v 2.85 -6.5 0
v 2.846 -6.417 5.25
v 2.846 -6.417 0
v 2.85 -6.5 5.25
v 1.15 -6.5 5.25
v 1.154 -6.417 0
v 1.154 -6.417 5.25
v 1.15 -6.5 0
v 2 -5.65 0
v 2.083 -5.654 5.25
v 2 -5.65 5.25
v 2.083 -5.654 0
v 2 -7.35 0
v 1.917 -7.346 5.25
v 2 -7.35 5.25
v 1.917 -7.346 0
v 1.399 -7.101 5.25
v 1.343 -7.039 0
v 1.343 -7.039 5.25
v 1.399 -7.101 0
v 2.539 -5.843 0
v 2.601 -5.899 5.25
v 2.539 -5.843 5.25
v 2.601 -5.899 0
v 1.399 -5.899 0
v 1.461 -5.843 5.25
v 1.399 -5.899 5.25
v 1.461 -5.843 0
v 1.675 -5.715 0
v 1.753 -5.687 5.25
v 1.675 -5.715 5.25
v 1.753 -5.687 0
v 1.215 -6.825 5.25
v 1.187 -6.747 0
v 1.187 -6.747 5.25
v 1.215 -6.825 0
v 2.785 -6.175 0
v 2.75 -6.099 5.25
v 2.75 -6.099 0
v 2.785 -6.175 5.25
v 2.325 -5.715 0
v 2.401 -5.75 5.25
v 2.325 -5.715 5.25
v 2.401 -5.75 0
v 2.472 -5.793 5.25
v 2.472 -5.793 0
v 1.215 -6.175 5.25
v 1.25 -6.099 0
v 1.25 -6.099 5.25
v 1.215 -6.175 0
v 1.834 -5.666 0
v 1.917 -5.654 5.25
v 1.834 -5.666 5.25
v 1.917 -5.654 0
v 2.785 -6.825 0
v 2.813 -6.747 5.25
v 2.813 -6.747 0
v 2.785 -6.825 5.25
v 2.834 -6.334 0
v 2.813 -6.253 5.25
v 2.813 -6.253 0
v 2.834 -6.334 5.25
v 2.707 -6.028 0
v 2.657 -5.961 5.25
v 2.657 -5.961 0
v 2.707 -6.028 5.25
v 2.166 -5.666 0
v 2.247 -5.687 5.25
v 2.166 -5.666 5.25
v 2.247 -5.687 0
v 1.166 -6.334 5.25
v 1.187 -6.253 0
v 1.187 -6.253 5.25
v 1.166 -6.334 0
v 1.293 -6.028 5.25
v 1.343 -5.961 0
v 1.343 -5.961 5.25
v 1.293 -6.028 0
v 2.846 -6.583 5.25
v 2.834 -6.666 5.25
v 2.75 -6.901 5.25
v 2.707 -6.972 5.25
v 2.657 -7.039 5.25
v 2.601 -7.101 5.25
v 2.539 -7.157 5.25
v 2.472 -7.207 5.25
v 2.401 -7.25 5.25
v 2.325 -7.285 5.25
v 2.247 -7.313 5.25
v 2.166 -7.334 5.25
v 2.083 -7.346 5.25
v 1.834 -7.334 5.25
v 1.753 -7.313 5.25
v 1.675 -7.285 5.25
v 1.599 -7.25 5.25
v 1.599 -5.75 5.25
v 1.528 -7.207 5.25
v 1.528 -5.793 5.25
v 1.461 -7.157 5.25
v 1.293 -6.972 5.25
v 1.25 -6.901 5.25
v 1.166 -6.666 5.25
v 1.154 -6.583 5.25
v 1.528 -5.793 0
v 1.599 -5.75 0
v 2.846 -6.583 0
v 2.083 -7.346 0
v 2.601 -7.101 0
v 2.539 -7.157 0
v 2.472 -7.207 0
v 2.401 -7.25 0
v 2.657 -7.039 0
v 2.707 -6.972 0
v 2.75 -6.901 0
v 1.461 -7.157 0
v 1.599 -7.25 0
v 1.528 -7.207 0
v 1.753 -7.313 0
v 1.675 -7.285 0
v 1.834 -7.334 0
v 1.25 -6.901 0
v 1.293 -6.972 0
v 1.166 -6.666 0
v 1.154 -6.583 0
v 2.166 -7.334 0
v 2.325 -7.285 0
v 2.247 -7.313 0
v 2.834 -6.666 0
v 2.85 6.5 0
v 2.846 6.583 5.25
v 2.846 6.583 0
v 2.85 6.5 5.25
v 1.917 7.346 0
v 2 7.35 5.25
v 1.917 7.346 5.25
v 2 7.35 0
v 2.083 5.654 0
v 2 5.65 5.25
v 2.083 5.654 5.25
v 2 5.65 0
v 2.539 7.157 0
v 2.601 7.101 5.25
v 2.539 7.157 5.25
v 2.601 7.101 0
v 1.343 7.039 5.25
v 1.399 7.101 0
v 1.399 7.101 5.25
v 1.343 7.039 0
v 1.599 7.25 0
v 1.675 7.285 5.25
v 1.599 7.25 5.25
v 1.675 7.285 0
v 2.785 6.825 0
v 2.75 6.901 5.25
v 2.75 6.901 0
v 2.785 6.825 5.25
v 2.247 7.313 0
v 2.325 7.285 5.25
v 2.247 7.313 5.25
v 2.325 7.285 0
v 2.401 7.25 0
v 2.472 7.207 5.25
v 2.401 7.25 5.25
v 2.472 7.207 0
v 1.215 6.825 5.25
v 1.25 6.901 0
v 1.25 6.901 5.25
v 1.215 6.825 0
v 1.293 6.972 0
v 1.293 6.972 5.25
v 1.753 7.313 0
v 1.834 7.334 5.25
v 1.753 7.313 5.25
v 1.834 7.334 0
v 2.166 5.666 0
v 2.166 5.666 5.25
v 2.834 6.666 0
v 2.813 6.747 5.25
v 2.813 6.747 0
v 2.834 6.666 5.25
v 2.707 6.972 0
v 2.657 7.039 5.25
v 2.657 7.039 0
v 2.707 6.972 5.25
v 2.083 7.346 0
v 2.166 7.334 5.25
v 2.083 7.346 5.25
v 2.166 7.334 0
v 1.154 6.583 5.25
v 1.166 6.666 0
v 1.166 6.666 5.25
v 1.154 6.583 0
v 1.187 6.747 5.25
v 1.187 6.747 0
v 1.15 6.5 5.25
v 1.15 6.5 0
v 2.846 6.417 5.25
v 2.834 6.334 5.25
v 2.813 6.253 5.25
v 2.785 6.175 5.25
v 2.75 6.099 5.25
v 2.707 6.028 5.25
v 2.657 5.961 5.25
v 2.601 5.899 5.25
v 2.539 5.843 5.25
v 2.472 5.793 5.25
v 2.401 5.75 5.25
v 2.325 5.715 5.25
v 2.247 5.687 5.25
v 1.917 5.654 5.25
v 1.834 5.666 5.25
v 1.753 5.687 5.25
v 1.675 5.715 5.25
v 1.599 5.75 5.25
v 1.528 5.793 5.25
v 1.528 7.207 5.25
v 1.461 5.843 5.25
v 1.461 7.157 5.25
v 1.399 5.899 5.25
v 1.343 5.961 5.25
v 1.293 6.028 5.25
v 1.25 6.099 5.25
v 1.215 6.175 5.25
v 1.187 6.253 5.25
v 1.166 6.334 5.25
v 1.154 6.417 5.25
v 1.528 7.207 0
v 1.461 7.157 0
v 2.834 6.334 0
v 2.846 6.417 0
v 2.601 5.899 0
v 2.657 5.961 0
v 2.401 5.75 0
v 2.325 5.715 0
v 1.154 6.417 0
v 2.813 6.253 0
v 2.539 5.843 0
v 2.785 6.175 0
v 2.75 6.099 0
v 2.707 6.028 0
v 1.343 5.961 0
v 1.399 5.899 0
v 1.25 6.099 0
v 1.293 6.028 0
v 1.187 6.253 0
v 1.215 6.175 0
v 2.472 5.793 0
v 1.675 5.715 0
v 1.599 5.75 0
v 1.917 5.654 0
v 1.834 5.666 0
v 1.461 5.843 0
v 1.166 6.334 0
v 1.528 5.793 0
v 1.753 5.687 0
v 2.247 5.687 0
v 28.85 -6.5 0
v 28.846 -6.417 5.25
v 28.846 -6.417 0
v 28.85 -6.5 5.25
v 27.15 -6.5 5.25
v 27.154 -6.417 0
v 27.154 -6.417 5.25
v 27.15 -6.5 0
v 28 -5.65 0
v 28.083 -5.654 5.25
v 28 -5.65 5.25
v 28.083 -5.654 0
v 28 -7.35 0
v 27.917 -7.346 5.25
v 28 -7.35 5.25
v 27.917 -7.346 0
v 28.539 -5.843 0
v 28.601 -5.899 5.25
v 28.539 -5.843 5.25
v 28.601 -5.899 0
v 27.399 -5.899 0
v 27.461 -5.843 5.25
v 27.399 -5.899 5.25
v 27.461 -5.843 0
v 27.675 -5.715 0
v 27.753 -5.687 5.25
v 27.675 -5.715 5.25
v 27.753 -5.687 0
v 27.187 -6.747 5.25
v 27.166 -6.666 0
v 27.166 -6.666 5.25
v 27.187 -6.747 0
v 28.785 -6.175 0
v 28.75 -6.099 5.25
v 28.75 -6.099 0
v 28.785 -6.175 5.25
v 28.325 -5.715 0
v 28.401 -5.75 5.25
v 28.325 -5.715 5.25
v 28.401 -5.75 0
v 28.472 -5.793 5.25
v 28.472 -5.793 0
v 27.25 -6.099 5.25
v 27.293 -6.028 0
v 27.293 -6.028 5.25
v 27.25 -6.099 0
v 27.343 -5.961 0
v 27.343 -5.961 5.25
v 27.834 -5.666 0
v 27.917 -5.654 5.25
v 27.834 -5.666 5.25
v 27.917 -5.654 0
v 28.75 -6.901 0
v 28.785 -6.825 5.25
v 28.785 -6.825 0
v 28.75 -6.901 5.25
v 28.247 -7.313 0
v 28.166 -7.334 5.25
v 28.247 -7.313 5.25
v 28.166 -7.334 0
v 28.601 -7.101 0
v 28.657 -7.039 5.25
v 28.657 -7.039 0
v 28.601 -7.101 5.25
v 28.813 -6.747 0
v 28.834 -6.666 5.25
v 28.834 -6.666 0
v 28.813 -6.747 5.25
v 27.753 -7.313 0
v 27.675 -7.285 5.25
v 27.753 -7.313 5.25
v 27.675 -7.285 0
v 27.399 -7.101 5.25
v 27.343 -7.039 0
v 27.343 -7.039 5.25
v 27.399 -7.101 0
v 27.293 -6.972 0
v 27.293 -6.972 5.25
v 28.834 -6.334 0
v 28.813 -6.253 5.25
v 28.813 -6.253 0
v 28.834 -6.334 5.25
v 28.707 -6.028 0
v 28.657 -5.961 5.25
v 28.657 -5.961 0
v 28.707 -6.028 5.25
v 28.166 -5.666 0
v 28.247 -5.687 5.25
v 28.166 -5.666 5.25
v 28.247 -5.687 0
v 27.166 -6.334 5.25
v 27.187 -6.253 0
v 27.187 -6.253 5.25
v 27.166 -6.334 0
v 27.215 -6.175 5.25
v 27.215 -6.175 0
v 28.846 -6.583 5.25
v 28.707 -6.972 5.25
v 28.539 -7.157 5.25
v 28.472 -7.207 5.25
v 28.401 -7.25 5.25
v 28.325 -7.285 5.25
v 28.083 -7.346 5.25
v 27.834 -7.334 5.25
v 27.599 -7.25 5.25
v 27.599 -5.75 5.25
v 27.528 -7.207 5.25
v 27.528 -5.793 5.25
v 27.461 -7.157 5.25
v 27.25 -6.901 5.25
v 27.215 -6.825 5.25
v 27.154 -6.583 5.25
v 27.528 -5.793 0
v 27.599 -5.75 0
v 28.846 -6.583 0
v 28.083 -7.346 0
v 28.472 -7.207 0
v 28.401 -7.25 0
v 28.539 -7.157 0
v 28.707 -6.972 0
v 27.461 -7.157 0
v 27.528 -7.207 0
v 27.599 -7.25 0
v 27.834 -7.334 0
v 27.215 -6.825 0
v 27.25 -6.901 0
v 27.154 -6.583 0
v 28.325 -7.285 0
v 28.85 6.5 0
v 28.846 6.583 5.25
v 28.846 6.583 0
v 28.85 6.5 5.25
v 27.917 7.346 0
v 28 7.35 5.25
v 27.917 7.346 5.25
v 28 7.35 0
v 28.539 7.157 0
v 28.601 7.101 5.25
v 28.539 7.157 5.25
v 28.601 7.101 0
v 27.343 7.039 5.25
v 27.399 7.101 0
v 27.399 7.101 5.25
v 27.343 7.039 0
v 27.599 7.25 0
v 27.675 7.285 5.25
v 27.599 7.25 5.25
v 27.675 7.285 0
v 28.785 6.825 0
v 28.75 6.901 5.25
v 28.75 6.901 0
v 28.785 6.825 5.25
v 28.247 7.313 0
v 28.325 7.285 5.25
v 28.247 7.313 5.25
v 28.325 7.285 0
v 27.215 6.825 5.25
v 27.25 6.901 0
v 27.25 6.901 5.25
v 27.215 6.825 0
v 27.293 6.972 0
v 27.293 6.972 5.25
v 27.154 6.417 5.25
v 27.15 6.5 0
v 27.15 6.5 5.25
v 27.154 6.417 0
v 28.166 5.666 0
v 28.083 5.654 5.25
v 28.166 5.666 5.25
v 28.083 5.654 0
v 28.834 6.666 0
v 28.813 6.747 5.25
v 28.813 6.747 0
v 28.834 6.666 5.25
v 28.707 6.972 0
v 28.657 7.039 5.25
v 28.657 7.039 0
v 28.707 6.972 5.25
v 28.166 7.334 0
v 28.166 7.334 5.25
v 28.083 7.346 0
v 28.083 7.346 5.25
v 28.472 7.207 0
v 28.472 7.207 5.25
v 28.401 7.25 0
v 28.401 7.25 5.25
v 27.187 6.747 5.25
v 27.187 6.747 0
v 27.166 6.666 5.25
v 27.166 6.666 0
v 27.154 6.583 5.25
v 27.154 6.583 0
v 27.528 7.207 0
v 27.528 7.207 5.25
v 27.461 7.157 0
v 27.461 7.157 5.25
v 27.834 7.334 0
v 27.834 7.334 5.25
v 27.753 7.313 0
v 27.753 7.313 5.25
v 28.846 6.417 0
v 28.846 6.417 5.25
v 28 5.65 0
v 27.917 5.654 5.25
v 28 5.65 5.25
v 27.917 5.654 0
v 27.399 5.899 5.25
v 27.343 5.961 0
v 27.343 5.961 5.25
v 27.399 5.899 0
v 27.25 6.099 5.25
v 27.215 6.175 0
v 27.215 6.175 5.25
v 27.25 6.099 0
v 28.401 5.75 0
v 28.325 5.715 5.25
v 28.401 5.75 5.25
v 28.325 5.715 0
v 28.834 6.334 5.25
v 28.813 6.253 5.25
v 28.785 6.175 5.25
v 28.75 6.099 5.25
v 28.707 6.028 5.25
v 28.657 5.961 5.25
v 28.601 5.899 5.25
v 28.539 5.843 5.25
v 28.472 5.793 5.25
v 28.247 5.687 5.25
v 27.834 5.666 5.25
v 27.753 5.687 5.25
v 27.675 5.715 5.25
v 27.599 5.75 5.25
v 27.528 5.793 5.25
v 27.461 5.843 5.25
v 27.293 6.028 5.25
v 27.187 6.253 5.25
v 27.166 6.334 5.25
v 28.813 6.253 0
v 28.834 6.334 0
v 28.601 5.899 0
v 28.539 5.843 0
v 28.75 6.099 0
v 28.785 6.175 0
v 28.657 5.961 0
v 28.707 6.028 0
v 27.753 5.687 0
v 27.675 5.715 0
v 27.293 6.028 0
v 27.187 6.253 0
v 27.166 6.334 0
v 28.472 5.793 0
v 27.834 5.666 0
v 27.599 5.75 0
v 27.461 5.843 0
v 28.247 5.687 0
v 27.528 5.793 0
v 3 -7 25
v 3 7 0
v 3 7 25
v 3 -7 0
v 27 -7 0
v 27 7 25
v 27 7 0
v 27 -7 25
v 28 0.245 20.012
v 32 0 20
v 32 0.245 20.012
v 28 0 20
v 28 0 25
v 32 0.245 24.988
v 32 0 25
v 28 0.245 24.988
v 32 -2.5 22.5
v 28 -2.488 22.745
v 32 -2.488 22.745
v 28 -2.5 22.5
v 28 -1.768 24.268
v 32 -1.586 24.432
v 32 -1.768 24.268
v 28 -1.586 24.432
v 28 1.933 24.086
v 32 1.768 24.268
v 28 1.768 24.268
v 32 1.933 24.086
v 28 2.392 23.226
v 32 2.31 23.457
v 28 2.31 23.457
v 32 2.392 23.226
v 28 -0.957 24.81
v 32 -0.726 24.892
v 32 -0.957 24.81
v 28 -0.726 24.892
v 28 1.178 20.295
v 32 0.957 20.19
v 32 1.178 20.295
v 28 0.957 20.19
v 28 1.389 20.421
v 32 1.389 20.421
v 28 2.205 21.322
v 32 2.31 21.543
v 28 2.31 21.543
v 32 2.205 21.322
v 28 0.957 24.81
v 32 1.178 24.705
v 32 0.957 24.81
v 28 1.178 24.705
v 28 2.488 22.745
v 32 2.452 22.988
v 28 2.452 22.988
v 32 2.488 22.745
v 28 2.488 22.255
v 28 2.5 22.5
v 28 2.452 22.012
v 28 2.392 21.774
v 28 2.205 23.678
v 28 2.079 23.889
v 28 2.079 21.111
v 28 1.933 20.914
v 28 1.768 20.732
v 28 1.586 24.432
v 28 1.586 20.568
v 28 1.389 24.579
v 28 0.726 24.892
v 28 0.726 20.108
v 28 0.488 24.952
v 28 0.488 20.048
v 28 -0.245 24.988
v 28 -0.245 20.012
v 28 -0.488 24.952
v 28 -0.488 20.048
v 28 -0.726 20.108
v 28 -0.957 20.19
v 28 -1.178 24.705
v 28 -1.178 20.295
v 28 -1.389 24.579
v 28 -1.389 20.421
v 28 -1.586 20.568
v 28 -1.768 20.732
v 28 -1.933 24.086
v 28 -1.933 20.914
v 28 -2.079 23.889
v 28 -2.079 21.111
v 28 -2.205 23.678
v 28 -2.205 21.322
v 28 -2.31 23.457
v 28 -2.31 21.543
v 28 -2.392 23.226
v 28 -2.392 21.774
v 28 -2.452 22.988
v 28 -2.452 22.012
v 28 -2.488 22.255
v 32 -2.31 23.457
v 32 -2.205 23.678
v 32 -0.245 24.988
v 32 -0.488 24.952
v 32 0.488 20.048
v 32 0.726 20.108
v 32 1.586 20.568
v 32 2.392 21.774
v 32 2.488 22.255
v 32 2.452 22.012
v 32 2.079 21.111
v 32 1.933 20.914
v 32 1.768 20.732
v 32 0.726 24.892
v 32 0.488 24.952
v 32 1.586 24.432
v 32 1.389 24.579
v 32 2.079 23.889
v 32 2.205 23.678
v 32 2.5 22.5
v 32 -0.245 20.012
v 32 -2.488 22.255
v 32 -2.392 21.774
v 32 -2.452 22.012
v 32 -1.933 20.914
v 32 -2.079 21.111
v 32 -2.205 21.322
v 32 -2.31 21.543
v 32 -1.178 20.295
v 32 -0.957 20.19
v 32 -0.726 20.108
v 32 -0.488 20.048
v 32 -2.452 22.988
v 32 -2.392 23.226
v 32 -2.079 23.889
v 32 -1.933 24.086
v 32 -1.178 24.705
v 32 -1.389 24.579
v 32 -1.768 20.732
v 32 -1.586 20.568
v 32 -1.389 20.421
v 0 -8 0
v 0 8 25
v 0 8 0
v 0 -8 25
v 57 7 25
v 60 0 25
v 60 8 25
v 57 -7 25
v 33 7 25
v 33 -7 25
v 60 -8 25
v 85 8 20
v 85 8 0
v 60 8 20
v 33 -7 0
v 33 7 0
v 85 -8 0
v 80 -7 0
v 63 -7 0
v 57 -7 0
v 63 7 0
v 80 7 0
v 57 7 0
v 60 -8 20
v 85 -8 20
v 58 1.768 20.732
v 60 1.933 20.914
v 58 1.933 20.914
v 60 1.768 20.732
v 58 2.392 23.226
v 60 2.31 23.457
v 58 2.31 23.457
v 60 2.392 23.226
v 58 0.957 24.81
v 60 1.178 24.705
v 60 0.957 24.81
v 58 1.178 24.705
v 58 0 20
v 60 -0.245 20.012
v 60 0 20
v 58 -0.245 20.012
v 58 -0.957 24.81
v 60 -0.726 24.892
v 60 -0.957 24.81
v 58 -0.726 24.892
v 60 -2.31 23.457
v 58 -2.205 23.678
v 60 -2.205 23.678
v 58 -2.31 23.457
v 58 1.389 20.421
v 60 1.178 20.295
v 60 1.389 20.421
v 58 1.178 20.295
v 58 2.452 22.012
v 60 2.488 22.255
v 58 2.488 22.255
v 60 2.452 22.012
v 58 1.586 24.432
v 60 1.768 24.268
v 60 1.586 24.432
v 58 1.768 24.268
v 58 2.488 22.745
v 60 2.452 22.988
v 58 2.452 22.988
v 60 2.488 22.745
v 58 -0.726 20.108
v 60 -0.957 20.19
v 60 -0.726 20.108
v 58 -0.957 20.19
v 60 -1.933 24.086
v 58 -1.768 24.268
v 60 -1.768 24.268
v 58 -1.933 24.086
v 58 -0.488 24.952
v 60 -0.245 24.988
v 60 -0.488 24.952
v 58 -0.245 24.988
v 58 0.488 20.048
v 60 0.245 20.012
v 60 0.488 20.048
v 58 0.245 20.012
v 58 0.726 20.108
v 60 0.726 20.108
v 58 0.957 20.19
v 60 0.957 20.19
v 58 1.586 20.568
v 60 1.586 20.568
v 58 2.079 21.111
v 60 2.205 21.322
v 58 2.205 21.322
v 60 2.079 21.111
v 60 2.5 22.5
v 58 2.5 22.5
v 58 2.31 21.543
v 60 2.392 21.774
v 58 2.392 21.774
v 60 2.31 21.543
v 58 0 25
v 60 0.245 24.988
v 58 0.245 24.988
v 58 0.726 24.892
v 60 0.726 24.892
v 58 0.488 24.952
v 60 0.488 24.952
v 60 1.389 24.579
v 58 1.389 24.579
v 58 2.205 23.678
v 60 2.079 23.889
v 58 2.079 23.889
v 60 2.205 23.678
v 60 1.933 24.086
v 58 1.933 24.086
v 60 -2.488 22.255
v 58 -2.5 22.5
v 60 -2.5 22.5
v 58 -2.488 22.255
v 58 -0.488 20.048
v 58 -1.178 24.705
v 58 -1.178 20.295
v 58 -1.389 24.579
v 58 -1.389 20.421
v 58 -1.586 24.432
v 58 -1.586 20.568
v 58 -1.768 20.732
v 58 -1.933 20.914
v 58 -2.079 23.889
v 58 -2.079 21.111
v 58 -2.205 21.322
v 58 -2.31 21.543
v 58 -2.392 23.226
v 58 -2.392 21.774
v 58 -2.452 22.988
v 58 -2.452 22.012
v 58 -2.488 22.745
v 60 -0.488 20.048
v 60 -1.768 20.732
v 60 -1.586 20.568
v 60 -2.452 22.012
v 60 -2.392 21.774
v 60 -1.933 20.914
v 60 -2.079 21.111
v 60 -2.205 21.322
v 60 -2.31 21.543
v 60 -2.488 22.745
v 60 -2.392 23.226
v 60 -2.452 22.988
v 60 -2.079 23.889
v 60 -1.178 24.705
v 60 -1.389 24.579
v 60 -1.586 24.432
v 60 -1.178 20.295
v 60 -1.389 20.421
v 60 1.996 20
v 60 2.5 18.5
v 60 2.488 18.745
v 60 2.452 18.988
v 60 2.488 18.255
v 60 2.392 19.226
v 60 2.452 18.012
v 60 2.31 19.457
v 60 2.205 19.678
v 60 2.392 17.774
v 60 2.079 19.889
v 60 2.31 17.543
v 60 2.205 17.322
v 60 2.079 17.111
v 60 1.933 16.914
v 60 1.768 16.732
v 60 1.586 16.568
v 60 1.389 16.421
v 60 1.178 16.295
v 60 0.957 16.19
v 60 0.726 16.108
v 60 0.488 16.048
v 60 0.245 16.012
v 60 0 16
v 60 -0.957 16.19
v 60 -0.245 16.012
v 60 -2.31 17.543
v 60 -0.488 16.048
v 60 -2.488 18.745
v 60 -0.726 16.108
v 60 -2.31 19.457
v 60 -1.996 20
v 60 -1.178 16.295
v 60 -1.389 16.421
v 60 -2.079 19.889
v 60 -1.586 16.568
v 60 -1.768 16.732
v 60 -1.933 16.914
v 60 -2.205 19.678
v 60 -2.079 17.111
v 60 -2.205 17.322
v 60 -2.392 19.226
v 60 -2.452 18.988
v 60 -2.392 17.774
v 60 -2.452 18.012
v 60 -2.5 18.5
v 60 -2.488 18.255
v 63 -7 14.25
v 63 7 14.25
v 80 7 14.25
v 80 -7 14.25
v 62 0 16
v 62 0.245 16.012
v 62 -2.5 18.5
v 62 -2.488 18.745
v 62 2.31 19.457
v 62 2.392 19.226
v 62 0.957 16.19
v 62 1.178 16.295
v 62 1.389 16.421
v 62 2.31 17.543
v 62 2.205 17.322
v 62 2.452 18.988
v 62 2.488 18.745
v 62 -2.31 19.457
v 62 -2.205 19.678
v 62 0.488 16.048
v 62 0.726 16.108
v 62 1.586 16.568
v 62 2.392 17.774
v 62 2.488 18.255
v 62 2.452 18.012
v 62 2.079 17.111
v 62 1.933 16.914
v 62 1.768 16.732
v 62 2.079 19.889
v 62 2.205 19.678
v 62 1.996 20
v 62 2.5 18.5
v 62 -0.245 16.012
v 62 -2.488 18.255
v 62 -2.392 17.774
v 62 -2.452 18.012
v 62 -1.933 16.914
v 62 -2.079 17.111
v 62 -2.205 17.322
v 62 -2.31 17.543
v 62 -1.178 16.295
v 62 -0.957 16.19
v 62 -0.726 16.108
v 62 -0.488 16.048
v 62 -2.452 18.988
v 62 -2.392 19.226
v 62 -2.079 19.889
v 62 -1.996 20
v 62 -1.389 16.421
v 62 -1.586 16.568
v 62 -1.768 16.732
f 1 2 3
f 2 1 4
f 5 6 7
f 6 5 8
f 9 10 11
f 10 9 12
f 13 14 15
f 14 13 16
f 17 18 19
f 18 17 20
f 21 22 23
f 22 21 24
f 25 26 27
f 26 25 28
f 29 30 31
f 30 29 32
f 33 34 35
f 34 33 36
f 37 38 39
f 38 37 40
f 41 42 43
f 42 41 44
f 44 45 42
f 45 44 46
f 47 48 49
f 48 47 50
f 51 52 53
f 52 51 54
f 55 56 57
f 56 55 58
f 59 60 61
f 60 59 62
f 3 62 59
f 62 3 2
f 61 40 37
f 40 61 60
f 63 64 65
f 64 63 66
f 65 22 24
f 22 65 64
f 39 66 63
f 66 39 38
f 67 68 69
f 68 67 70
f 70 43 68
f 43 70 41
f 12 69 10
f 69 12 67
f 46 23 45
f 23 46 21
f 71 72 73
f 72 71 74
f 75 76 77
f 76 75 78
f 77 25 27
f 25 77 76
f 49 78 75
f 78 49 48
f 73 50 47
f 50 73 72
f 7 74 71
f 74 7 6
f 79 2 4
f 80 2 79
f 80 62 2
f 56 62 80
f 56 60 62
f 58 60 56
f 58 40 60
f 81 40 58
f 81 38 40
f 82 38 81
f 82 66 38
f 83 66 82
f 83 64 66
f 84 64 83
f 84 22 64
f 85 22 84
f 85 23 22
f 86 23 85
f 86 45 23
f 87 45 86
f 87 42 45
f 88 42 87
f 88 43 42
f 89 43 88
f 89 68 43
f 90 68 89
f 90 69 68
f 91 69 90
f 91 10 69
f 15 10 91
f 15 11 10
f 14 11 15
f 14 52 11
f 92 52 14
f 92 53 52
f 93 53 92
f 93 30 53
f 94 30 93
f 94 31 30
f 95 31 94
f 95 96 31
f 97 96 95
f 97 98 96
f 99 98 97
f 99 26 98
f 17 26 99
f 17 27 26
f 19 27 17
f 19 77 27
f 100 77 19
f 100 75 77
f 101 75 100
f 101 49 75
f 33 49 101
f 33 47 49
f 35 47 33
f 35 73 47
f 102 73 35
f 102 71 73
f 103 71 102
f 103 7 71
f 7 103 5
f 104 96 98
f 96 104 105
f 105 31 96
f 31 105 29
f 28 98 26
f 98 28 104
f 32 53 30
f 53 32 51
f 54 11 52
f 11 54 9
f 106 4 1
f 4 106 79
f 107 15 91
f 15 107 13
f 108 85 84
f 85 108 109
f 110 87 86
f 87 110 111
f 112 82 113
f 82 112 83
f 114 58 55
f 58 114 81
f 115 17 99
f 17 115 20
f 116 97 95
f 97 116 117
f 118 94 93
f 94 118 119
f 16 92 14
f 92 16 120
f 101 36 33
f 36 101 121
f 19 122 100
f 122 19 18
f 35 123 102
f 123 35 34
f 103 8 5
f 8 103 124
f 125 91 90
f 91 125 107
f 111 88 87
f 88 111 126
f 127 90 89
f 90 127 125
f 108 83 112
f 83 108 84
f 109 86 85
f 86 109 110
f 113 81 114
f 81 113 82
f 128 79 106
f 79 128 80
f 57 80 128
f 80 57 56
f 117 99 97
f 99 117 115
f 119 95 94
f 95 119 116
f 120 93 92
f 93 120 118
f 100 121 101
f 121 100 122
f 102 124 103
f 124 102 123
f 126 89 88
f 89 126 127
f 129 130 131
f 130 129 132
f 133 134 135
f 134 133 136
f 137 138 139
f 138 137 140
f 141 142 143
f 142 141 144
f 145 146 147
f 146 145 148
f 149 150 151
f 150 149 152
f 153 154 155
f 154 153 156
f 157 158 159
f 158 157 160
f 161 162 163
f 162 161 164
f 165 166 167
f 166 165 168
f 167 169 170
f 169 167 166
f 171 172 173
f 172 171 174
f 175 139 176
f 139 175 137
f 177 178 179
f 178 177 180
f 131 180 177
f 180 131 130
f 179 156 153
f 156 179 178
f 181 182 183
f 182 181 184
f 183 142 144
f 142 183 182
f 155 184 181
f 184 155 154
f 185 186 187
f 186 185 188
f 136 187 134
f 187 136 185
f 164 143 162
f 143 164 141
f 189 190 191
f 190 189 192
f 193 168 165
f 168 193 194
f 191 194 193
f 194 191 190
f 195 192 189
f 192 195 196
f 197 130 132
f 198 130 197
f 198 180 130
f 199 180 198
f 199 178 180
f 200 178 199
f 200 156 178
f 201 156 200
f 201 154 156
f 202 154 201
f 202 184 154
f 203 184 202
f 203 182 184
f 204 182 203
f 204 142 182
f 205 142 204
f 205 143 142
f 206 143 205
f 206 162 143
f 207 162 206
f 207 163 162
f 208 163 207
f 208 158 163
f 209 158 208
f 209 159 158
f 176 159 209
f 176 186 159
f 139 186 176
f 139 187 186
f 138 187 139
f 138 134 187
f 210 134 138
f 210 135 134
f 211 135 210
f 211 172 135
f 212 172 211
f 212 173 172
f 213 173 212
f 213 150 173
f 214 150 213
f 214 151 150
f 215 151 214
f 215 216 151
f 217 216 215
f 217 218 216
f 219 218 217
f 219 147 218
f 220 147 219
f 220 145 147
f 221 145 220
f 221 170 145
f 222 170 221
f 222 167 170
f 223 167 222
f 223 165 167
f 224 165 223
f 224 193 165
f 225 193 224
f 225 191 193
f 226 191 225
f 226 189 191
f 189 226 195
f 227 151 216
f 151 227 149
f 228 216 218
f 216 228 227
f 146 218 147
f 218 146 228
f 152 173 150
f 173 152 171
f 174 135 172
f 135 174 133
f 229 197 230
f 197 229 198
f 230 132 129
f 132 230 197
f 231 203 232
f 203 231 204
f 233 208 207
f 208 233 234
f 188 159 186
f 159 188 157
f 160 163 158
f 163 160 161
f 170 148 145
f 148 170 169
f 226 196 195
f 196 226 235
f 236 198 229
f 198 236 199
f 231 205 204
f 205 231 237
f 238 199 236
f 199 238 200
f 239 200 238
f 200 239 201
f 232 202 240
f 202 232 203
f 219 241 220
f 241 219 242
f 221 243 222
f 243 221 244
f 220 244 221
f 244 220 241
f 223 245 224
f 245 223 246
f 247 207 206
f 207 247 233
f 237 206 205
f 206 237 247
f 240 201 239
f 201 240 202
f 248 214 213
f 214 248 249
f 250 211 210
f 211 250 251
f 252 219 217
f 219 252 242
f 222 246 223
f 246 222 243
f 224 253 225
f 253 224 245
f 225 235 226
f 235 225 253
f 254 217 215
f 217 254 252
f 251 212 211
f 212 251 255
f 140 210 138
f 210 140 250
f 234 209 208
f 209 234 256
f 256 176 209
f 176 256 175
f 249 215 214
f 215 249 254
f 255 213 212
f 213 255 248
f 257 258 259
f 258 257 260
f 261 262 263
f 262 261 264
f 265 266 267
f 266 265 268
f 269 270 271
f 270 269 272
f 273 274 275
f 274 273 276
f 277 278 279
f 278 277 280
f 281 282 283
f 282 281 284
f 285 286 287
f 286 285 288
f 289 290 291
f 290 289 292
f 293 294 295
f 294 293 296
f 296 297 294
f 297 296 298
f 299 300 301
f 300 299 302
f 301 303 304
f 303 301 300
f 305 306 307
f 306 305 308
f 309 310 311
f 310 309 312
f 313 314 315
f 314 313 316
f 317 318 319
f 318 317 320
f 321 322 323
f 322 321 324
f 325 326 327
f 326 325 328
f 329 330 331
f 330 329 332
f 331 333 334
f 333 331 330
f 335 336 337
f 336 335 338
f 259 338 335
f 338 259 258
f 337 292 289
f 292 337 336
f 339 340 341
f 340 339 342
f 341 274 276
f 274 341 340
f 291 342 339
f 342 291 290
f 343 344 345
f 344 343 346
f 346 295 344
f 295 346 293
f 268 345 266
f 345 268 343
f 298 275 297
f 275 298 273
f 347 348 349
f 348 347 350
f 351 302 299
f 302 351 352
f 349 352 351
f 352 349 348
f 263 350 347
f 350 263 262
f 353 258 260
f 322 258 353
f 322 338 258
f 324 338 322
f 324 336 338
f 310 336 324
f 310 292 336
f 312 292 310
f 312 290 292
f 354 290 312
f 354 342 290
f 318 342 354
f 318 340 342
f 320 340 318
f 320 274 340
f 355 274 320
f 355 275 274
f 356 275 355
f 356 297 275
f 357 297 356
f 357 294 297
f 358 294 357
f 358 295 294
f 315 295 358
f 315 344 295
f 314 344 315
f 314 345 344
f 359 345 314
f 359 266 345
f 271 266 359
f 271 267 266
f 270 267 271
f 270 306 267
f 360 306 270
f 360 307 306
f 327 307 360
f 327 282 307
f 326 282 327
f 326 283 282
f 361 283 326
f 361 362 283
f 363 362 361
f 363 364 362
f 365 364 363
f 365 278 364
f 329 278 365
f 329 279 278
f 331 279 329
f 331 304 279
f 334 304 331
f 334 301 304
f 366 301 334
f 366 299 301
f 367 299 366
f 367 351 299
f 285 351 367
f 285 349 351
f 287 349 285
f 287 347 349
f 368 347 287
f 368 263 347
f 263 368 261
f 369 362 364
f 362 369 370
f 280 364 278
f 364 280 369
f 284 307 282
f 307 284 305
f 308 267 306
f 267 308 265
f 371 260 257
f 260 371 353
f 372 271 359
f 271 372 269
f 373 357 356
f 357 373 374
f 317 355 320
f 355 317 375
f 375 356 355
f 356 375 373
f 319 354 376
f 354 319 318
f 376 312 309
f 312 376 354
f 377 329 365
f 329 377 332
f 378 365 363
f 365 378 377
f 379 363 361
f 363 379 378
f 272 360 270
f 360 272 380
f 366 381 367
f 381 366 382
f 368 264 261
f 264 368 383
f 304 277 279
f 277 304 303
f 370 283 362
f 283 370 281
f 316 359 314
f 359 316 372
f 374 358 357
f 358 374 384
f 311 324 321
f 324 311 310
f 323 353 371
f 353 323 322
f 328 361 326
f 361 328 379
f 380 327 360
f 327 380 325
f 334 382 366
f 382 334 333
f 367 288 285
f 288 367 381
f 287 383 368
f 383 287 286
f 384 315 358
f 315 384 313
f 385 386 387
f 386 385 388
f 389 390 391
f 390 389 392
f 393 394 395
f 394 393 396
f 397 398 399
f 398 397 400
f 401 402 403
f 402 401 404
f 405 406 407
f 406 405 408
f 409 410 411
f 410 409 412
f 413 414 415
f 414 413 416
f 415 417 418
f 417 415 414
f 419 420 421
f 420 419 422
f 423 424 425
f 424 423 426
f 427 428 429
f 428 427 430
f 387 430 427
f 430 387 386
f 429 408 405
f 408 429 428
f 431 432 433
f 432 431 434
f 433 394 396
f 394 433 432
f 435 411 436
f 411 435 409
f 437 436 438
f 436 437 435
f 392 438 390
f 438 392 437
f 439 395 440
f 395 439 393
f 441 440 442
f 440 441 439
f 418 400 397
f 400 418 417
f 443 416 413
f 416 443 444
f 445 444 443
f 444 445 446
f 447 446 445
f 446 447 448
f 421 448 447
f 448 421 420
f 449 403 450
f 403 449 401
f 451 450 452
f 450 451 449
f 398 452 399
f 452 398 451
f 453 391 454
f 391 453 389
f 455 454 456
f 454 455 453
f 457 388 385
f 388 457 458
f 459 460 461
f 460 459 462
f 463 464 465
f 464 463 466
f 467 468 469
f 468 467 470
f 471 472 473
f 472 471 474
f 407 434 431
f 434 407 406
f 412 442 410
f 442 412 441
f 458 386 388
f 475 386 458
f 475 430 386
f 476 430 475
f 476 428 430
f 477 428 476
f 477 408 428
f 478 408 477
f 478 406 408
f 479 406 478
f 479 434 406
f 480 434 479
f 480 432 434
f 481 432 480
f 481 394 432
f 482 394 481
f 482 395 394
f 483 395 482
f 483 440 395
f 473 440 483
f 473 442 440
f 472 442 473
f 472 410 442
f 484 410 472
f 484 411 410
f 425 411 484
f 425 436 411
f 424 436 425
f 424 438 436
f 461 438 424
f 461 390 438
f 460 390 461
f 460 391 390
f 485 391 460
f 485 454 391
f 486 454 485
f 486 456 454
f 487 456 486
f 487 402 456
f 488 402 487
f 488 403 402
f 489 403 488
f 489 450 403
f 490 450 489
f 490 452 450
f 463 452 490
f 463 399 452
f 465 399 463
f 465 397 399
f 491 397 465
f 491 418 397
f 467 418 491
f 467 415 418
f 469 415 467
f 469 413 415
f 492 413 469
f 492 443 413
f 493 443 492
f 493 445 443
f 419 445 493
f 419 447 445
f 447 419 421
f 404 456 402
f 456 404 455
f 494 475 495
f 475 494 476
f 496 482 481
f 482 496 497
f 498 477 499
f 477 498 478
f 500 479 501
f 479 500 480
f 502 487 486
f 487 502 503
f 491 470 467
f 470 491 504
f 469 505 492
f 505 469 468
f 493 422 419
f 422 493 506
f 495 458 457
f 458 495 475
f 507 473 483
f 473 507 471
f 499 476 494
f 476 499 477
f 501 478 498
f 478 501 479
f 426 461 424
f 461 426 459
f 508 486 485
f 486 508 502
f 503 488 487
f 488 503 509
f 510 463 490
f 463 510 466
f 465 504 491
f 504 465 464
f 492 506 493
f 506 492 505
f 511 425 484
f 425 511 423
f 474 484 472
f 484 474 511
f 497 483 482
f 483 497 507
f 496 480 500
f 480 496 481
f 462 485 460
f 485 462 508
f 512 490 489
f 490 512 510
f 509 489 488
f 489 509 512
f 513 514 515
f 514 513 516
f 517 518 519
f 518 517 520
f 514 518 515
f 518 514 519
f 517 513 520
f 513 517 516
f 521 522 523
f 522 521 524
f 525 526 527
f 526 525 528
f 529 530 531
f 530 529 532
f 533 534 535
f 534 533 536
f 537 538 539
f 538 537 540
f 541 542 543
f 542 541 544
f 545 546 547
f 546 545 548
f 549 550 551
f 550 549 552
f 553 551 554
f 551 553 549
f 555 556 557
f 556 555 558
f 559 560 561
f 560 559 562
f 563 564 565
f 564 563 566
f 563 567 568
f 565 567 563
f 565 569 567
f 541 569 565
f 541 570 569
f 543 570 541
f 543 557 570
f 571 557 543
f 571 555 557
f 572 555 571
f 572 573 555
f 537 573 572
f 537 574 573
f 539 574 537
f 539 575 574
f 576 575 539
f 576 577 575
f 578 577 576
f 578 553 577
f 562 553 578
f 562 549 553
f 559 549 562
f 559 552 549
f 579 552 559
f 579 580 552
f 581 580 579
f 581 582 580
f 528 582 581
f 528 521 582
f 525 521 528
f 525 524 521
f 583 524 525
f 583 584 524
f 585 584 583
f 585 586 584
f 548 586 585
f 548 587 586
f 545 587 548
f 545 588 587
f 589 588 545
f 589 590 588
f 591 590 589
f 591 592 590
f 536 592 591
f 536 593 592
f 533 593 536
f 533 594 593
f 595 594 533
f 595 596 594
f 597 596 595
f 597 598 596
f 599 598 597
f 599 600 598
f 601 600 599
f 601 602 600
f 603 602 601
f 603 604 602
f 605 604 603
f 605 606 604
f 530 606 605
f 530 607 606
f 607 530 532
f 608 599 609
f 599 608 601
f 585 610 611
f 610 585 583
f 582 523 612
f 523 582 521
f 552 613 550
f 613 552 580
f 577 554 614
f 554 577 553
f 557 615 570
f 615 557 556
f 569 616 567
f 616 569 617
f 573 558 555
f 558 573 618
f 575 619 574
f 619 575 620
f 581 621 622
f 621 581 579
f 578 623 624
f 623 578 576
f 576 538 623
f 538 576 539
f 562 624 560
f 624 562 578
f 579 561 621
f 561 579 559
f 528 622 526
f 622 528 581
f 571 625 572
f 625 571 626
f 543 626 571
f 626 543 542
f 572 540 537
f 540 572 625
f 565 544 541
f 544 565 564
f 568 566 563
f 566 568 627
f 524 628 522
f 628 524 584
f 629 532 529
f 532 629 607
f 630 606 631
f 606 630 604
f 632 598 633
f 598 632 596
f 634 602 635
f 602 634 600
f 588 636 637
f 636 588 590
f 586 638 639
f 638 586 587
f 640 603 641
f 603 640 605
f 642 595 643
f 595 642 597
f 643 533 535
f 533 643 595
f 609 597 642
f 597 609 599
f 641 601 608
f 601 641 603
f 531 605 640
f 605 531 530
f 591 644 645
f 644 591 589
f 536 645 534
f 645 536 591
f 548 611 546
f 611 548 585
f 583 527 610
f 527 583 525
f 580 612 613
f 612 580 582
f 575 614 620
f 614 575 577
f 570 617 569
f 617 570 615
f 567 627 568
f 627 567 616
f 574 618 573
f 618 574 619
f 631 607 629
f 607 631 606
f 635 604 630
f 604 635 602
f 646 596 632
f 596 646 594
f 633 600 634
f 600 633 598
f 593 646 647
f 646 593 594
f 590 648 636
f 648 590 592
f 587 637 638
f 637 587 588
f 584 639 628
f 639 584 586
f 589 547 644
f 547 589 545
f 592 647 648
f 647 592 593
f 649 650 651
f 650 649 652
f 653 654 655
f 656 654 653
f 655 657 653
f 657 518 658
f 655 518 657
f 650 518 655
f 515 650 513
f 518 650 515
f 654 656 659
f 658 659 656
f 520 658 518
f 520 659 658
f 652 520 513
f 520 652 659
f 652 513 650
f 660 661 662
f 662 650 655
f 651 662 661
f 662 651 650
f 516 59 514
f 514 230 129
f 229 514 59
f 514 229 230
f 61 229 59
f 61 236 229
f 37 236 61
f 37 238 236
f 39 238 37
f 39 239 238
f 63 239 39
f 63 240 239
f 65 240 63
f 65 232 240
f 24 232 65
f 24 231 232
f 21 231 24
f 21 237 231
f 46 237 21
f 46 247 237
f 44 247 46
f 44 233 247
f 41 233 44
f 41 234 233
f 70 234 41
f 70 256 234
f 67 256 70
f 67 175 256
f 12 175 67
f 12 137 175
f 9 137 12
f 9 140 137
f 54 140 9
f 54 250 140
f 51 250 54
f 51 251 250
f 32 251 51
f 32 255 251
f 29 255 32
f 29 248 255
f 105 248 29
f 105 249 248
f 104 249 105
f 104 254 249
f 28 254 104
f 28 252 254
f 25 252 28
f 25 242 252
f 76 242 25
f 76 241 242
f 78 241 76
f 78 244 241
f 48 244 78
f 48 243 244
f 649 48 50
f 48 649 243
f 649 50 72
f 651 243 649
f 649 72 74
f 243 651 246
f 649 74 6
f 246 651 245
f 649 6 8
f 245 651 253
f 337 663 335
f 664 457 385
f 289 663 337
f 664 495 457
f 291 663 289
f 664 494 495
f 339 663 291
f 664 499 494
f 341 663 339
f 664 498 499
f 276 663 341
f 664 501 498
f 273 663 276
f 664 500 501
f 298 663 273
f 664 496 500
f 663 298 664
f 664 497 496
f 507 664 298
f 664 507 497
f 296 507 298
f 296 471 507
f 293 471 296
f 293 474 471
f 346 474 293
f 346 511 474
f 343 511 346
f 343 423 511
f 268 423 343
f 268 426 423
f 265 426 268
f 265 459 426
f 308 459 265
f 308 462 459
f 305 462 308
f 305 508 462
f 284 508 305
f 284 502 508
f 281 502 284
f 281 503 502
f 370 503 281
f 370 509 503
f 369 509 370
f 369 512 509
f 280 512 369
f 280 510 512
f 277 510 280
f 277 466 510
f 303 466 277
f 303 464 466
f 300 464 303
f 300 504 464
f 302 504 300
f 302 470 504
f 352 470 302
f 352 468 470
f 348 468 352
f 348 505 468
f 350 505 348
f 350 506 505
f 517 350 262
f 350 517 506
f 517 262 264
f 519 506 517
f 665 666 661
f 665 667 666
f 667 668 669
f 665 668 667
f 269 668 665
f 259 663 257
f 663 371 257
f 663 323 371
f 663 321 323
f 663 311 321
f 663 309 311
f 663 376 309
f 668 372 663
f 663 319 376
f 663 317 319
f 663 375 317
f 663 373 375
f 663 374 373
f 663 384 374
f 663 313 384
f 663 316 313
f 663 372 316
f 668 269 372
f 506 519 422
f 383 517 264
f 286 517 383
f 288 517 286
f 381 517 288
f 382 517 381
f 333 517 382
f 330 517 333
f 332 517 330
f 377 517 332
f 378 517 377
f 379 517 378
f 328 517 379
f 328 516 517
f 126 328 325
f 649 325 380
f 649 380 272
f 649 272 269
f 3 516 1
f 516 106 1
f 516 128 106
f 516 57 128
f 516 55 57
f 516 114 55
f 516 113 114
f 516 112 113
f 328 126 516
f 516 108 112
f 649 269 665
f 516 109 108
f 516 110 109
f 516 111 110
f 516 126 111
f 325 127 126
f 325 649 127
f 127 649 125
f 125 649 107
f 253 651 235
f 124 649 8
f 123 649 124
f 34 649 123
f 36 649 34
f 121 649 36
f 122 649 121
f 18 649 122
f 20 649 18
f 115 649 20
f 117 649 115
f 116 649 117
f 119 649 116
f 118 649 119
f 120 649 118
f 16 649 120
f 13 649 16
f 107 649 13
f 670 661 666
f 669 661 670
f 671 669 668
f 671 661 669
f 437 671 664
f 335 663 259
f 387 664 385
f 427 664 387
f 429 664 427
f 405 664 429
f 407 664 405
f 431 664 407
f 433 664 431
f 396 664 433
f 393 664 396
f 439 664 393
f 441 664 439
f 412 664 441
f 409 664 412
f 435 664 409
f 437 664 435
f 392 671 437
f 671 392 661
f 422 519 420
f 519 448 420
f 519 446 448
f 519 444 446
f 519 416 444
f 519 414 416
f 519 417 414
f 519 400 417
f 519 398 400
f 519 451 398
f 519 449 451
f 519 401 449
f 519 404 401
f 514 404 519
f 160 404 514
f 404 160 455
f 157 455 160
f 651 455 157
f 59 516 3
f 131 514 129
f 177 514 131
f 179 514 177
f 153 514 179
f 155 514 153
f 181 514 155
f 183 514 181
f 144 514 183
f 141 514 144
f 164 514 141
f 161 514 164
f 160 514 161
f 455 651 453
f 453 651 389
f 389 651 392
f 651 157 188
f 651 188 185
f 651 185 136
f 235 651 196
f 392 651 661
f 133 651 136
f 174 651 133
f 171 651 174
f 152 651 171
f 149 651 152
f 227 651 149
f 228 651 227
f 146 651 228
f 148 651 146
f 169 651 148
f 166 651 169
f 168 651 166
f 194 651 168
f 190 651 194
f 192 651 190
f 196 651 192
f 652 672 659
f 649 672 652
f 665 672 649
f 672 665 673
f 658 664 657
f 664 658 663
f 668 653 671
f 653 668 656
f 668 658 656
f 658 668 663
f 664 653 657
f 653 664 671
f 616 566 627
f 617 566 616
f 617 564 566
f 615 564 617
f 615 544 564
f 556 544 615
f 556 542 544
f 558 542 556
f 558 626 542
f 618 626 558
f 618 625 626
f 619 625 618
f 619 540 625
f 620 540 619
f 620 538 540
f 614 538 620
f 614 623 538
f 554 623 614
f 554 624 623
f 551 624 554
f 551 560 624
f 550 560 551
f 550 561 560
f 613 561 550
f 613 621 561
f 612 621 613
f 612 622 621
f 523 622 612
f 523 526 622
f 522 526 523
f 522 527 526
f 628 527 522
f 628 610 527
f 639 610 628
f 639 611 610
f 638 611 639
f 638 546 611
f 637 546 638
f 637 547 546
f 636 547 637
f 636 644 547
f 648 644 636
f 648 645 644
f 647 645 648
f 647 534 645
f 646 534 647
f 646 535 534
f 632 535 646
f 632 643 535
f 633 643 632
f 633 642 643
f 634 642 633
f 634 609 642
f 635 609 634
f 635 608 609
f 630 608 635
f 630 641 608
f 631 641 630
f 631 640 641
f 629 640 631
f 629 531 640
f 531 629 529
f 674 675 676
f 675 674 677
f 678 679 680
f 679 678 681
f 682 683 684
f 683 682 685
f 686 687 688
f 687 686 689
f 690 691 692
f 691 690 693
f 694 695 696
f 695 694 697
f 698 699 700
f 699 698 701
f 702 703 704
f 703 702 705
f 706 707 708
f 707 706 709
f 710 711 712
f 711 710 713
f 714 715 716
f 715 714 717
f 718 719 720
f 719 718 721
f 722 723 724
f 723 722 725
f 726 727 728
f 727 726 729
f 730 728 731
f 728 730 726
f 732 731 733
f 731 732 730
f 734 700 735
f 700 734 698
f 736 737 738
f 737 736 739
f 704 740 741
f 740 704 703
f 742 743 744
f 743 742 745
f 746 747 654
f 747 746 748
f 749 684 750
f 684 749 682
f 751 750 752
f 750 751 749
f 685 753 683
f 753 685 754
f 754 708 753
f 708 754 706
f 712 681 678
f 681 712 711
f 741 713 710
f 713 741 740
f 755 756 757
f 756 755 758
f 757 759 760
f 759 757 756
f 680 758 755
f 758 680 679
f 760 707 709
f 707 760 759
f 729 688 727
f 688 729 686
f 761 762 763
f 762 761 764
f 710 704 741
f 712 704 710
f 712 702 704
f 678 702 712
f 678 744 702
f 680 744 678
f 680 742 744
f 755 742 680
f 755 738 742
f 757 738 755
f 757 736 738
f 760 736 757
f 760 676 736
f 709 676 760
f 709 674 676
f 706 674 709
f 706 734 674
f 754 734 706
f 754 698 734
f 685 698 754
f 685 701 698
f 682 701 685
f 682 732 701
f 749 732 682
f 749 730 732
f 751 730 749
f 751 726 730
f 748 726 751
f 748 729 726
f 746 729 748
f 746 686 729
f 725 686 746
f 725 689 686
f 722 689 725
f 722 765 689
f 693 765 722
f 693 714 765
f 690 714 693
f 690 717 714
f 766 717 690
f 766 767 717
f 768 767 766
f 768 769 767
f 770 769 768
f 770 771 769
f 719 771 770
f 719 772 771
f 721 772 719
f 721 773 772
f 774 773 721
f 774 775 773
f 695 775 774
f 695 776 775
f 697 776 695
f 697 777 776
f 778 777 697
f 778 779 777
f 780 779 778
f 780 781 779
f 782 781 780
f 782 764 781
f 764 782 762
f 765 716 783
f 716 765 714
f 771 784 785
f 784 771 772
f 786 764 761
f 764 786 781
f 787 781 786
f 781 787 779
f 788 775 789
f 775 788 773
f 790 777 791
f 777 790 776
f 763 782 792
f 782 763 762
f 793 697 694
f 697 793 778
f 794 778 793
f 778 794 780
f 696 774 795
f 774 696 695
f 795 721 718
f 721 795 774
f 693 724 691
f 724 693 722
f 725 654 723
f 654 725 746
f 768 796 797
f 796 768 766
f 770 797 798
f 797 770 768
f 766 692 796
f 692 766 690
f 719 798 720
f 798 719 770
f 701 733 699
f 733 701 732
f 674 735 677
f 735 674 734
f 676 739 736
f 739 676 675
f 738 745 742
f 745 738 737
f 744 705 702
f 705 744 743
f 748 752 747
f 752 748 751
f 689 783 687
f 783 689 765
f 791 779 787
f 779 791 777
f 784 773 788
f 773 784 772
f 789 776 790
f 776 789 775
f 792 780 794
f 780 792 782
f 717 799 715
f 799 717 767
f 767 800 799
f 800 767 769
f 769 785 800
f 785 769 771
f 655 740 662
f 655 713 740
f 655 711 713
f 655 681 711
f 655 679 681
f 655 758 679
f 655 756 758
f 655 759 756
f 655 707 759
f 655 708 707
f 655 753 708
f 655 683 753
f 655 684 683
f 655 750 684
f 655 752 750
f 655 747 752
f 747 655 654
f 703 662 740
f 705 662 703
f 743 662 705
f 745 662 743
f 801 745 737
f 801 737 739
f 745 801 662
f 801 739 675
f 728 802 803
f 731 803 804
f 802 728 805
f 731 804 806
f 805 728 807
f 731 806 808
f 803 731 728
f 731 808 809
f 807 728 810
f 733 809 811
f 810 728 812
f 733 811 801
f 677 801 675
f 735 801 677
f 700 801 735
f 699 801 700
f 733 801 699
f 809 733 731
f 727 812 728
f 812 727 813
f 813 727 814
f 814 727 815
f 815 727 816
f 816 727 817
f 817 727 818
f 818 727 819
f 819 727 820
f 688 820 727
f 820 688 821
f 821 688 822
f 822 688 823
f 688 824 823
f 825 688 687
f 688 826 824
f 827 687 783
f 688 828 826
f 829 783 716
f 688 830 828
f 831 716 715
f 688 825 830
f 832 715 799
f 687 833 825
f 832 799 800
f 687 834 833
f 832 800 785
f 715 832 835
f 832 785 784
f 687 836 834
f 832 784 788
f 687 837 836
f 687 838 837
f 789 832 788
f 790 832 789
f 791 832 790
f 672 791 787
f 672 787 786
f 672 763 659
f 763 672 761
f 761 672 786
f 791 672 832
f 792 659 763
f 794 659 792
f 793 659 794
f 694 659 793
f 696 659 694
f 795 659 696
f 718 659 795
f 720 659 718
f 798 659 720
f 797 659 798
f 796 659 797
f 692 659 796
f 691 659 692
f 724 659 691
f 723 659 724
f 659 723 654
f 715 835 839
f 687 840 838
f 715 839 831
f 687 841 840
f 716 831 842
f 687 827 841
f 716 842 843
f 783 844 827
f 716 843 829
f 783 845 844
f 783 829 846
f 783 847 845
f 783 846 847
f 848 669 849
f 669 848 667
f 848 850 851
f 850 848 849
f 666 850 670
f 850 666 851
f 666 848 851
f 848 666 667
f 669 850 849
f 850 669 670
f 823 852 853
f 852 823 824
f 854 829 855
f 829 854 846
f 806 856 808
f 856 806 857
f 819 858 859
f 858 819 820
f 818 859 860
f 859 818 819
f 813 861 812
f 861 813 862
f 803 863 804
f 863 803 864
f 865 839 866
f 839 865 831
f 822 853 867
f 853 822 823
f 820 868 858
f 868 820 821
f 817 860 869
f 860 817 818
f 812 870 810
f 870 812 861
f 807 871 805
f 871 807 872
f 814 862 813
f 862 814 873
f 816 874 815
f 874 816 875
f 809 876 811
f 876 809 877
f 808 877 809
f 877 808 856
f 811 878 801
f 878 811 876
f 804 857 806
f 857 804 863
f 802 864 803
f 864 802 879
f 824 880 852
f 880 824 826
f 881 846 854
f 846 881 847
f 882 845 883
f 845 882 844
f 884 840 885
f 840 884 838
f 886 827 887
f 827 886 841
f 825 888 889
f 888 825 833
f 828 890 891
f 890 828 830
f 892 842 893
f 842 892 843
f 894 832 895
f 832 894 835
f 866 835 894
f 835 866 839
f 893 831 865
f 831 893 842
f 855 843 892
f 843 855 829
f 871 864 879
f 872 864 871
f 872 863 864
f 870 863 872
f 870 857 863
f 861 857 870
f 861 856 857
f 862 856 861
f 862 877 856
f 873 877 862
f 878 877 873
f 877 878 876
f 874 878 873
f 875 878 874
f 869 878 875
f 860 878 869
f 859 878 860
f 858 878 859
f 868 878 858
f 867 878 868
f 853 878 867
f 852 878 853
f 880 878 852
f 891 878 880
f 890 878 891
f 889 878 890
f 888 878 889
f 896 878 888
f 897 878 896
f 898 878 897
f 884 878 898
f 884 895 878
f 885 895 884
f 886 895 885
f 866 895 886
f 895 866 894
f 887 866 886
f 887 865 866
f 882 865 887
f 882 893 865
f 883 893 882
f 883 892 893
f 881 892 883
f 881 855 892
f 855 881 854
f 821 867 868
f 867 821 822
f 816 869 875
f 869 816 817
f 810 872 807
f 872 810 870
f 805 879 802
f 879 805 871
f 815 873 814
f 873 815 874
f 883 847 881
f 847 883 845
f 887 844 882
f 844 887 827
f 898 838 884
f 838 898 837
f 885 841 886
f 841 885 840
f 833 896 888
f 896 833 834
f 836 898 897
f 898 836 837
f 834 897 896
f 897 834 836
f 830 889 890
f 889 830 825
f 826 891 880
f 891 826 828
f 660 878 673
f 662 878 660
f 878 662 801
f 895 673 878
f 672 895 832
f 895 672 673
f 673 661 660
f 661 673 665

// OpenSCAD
// ============================================================
// all_fingers.scad - 整根手指预览 (B1 + B2 + B3 串联)
// 单位: 毫米 (mm)
//
// 用法:
//   - 在 OpenSCAD 打开这个文件 (而不是 b1/b2/b3 单独的)
//   - F5 预览, 能看到 3 个指段如何拼成一整根手指
//   - F6 渲染后 File > Export > Export as STL 导出整指
//
// 拼装方式:
//   - B1: X[0, 30]   手掌端有 4 螺丝, 末端有 ⌀5 关节孔
//   - B2: X[30, 60]  两端都是 ⌀5 关节孔
//   - B3: X[60, 85]  输入端有 ⌀5 关节孔, 输出端是实心指尖
//
// 实际装配时:
//   - ⌀5 的轴贯穿: B1.输出 → B2.输入 → B2.输出 → B3.输入
//   - 4 颗 M2 螺丝把 B1 锁在手掌板上
//   - 关节处可以加扭簧 (提供回弹力) 或连到舵机 (主动驱动)
// ============================================================

/* === [全局] === */
$fn = 64;

/* === [B1 参数] === */
b1_len   = 30;
b1_wid   = 16;
b1_hgt   = 25;
b1_wall_x = 3;
b1_wall_y = 1;
b1_joint_r = 2.5;
b1_joint_z = 22.5;
b1_screw_r = 0.85;
b1_screw_off_x = 13;
b1_screw_off_y = 6.5;
b1_screw_depth = 5;

/* === [B2 参数] === */
b2_len   = 30;
b2_wid   = 16;
b2_hgt   = 25;
b2_wall_x = 3;
b2_wall_y = 1;
b2_joint_r = 2.5;
b2_joint_z = 22.5;

/* === [B3 参数] === */
b3_len   = 25;
b3_wid   = 16;
b3_hgt   = 20;
b3_wall_x = 3;
b3_wall_y = 1;
b3_joint_r = 2.5;
b3_joint_z = 18.5;
b3_tip_solid_x = 5;
b3_top_solid_z = 6;

// ============================================================
// 段模块 (复用 3 次, 每次不同位置)
// ============================================================

module b1_finger() {
    difference() {
        translate([b1_len/2, 0, b1_hgt/2])
            cube([b1_len, b1_wid, b1_hgt], center = true);
        union() {
            translate([b1_len/2, 0, b1_hgt/2])
                cube([b1_len - 2*b1_wall_x,
                      b1_wid - 2*b1_wall_y,
                      b1_hgt + 1], center = true);
            translate([b1_len, 0, b1_joint_z])
                rotate([0, 90, 0])
                cylinder(h = b1_wall_x + 1, r = b1_joint_r, center = true);
            for (sx = [-b1_screw_off_x, b1_screw_off_x],
                 sy = [-b1_screw_off_y, b1_screw_off_y])
                translate([b1_len/2 + sx, sy, -0.25])
                    cylinder(h = b1_screw_depth + 0.5, r = b1_screw_r);
        }
    }
}

module b2_finger() {
    difference() {
        translate([b2_len/2, 0, b2_hgt/2])
            cube([b2_len, b2_wid, b2_hgt], center = true);
        union() {
            translate([b2_len/2, 0, b2_hgt/2])
                cube([b2_len - 2*b2_wall_x,
                      b2_wid - 2*b2_wall_y,
                      b2_hgt + 1], center = true);
            translate([0, 0, b2_joint_z])
                rotate([0, 90, 0])
                cylinder(h = b2_wall_x + 1, r = b2_joint_r, center = true);
            translate([b2_len, 0, b2_joint_z])
                rotate([0, 90, 0])
                cylinder(h = b2_wall_x + 1, r = b2_joint_r, center = true);
        }
    }
}

module b3_finger() {
    difference() {
        translate([b3_len/2, 0, b3_hgt/2])
            cube([b3_len, b3_wid, b3_hgt], center = true);
        union() {
            cav_x_start = b3_wall_x;
            cav_x_len   = b3_len - b3_wall_x - b3_tip_solid_x;
            cav_y_len   = b3_wid - 2*b3_wall_y;
            cav_z_len   = b3_hgt - b3_top_solid_z;
            translate([cav_x_start + cav_x_len/2, 0, cav_z_len/2])
                cube([cav_x_len, cav_y_len, cav_z_len + 0.5], center = true);
            translate([0, 0, b3_joint_z])
                rotate([0, 90, 0])
                cylinder(h = b3_wall_x + 1, r = b3_joint_r, center = true);
        }
    }
}

// ============================================================
// 装配: 把 3 段串起来
// ============================================================

b1_finger();
translate([b1_len, 0, 0])
    b2_finger();
translate([b1_len + b2_len, 0, 0])
    b3_finger();

echo(str("=== 整指规格 ==="));
echo(str("总长: ", b1_len + b2_len + b3_len, " mm"));
echo(str("总宽: ", b1_wid, " mm (整段一致)"));
echo(str("总高: 不一致 -- B1/B2=25, B3=20"));
echo(str("关节孔: ⌀", b1_joint_r*2, " 共 4 个 (B1→B2 两端, B2→B3 两端)"));
echo(str("螺丝孔: ⌀", b1_screw_r*2, " 共 4 个 (B1 手掌端)"));

/* ============================================================
 * 怎么把这根手指"立起来":
 *
 *   OpenSCAD 默认 Y 轴朝"里", Z 轴朝上.
 *   手指现在躺在 XY 平面上, Z=0 是底面.
 *
 *   要打印时手指立着 (Z 朝上), 不需要任何变换 --
 *   OpenSCAD 导出的 STL 用切片软件 (Cura) 打开后,
 *   默认 Z 就是垂直方向, 跟我们这里一致.
 *
 *   但如果你想预览时"手指站起来", 可以加:
 *     rotate([0, -90, 0])  // 让 X 轴朝上
 *   试试看效果.
 * ============================================================ */
